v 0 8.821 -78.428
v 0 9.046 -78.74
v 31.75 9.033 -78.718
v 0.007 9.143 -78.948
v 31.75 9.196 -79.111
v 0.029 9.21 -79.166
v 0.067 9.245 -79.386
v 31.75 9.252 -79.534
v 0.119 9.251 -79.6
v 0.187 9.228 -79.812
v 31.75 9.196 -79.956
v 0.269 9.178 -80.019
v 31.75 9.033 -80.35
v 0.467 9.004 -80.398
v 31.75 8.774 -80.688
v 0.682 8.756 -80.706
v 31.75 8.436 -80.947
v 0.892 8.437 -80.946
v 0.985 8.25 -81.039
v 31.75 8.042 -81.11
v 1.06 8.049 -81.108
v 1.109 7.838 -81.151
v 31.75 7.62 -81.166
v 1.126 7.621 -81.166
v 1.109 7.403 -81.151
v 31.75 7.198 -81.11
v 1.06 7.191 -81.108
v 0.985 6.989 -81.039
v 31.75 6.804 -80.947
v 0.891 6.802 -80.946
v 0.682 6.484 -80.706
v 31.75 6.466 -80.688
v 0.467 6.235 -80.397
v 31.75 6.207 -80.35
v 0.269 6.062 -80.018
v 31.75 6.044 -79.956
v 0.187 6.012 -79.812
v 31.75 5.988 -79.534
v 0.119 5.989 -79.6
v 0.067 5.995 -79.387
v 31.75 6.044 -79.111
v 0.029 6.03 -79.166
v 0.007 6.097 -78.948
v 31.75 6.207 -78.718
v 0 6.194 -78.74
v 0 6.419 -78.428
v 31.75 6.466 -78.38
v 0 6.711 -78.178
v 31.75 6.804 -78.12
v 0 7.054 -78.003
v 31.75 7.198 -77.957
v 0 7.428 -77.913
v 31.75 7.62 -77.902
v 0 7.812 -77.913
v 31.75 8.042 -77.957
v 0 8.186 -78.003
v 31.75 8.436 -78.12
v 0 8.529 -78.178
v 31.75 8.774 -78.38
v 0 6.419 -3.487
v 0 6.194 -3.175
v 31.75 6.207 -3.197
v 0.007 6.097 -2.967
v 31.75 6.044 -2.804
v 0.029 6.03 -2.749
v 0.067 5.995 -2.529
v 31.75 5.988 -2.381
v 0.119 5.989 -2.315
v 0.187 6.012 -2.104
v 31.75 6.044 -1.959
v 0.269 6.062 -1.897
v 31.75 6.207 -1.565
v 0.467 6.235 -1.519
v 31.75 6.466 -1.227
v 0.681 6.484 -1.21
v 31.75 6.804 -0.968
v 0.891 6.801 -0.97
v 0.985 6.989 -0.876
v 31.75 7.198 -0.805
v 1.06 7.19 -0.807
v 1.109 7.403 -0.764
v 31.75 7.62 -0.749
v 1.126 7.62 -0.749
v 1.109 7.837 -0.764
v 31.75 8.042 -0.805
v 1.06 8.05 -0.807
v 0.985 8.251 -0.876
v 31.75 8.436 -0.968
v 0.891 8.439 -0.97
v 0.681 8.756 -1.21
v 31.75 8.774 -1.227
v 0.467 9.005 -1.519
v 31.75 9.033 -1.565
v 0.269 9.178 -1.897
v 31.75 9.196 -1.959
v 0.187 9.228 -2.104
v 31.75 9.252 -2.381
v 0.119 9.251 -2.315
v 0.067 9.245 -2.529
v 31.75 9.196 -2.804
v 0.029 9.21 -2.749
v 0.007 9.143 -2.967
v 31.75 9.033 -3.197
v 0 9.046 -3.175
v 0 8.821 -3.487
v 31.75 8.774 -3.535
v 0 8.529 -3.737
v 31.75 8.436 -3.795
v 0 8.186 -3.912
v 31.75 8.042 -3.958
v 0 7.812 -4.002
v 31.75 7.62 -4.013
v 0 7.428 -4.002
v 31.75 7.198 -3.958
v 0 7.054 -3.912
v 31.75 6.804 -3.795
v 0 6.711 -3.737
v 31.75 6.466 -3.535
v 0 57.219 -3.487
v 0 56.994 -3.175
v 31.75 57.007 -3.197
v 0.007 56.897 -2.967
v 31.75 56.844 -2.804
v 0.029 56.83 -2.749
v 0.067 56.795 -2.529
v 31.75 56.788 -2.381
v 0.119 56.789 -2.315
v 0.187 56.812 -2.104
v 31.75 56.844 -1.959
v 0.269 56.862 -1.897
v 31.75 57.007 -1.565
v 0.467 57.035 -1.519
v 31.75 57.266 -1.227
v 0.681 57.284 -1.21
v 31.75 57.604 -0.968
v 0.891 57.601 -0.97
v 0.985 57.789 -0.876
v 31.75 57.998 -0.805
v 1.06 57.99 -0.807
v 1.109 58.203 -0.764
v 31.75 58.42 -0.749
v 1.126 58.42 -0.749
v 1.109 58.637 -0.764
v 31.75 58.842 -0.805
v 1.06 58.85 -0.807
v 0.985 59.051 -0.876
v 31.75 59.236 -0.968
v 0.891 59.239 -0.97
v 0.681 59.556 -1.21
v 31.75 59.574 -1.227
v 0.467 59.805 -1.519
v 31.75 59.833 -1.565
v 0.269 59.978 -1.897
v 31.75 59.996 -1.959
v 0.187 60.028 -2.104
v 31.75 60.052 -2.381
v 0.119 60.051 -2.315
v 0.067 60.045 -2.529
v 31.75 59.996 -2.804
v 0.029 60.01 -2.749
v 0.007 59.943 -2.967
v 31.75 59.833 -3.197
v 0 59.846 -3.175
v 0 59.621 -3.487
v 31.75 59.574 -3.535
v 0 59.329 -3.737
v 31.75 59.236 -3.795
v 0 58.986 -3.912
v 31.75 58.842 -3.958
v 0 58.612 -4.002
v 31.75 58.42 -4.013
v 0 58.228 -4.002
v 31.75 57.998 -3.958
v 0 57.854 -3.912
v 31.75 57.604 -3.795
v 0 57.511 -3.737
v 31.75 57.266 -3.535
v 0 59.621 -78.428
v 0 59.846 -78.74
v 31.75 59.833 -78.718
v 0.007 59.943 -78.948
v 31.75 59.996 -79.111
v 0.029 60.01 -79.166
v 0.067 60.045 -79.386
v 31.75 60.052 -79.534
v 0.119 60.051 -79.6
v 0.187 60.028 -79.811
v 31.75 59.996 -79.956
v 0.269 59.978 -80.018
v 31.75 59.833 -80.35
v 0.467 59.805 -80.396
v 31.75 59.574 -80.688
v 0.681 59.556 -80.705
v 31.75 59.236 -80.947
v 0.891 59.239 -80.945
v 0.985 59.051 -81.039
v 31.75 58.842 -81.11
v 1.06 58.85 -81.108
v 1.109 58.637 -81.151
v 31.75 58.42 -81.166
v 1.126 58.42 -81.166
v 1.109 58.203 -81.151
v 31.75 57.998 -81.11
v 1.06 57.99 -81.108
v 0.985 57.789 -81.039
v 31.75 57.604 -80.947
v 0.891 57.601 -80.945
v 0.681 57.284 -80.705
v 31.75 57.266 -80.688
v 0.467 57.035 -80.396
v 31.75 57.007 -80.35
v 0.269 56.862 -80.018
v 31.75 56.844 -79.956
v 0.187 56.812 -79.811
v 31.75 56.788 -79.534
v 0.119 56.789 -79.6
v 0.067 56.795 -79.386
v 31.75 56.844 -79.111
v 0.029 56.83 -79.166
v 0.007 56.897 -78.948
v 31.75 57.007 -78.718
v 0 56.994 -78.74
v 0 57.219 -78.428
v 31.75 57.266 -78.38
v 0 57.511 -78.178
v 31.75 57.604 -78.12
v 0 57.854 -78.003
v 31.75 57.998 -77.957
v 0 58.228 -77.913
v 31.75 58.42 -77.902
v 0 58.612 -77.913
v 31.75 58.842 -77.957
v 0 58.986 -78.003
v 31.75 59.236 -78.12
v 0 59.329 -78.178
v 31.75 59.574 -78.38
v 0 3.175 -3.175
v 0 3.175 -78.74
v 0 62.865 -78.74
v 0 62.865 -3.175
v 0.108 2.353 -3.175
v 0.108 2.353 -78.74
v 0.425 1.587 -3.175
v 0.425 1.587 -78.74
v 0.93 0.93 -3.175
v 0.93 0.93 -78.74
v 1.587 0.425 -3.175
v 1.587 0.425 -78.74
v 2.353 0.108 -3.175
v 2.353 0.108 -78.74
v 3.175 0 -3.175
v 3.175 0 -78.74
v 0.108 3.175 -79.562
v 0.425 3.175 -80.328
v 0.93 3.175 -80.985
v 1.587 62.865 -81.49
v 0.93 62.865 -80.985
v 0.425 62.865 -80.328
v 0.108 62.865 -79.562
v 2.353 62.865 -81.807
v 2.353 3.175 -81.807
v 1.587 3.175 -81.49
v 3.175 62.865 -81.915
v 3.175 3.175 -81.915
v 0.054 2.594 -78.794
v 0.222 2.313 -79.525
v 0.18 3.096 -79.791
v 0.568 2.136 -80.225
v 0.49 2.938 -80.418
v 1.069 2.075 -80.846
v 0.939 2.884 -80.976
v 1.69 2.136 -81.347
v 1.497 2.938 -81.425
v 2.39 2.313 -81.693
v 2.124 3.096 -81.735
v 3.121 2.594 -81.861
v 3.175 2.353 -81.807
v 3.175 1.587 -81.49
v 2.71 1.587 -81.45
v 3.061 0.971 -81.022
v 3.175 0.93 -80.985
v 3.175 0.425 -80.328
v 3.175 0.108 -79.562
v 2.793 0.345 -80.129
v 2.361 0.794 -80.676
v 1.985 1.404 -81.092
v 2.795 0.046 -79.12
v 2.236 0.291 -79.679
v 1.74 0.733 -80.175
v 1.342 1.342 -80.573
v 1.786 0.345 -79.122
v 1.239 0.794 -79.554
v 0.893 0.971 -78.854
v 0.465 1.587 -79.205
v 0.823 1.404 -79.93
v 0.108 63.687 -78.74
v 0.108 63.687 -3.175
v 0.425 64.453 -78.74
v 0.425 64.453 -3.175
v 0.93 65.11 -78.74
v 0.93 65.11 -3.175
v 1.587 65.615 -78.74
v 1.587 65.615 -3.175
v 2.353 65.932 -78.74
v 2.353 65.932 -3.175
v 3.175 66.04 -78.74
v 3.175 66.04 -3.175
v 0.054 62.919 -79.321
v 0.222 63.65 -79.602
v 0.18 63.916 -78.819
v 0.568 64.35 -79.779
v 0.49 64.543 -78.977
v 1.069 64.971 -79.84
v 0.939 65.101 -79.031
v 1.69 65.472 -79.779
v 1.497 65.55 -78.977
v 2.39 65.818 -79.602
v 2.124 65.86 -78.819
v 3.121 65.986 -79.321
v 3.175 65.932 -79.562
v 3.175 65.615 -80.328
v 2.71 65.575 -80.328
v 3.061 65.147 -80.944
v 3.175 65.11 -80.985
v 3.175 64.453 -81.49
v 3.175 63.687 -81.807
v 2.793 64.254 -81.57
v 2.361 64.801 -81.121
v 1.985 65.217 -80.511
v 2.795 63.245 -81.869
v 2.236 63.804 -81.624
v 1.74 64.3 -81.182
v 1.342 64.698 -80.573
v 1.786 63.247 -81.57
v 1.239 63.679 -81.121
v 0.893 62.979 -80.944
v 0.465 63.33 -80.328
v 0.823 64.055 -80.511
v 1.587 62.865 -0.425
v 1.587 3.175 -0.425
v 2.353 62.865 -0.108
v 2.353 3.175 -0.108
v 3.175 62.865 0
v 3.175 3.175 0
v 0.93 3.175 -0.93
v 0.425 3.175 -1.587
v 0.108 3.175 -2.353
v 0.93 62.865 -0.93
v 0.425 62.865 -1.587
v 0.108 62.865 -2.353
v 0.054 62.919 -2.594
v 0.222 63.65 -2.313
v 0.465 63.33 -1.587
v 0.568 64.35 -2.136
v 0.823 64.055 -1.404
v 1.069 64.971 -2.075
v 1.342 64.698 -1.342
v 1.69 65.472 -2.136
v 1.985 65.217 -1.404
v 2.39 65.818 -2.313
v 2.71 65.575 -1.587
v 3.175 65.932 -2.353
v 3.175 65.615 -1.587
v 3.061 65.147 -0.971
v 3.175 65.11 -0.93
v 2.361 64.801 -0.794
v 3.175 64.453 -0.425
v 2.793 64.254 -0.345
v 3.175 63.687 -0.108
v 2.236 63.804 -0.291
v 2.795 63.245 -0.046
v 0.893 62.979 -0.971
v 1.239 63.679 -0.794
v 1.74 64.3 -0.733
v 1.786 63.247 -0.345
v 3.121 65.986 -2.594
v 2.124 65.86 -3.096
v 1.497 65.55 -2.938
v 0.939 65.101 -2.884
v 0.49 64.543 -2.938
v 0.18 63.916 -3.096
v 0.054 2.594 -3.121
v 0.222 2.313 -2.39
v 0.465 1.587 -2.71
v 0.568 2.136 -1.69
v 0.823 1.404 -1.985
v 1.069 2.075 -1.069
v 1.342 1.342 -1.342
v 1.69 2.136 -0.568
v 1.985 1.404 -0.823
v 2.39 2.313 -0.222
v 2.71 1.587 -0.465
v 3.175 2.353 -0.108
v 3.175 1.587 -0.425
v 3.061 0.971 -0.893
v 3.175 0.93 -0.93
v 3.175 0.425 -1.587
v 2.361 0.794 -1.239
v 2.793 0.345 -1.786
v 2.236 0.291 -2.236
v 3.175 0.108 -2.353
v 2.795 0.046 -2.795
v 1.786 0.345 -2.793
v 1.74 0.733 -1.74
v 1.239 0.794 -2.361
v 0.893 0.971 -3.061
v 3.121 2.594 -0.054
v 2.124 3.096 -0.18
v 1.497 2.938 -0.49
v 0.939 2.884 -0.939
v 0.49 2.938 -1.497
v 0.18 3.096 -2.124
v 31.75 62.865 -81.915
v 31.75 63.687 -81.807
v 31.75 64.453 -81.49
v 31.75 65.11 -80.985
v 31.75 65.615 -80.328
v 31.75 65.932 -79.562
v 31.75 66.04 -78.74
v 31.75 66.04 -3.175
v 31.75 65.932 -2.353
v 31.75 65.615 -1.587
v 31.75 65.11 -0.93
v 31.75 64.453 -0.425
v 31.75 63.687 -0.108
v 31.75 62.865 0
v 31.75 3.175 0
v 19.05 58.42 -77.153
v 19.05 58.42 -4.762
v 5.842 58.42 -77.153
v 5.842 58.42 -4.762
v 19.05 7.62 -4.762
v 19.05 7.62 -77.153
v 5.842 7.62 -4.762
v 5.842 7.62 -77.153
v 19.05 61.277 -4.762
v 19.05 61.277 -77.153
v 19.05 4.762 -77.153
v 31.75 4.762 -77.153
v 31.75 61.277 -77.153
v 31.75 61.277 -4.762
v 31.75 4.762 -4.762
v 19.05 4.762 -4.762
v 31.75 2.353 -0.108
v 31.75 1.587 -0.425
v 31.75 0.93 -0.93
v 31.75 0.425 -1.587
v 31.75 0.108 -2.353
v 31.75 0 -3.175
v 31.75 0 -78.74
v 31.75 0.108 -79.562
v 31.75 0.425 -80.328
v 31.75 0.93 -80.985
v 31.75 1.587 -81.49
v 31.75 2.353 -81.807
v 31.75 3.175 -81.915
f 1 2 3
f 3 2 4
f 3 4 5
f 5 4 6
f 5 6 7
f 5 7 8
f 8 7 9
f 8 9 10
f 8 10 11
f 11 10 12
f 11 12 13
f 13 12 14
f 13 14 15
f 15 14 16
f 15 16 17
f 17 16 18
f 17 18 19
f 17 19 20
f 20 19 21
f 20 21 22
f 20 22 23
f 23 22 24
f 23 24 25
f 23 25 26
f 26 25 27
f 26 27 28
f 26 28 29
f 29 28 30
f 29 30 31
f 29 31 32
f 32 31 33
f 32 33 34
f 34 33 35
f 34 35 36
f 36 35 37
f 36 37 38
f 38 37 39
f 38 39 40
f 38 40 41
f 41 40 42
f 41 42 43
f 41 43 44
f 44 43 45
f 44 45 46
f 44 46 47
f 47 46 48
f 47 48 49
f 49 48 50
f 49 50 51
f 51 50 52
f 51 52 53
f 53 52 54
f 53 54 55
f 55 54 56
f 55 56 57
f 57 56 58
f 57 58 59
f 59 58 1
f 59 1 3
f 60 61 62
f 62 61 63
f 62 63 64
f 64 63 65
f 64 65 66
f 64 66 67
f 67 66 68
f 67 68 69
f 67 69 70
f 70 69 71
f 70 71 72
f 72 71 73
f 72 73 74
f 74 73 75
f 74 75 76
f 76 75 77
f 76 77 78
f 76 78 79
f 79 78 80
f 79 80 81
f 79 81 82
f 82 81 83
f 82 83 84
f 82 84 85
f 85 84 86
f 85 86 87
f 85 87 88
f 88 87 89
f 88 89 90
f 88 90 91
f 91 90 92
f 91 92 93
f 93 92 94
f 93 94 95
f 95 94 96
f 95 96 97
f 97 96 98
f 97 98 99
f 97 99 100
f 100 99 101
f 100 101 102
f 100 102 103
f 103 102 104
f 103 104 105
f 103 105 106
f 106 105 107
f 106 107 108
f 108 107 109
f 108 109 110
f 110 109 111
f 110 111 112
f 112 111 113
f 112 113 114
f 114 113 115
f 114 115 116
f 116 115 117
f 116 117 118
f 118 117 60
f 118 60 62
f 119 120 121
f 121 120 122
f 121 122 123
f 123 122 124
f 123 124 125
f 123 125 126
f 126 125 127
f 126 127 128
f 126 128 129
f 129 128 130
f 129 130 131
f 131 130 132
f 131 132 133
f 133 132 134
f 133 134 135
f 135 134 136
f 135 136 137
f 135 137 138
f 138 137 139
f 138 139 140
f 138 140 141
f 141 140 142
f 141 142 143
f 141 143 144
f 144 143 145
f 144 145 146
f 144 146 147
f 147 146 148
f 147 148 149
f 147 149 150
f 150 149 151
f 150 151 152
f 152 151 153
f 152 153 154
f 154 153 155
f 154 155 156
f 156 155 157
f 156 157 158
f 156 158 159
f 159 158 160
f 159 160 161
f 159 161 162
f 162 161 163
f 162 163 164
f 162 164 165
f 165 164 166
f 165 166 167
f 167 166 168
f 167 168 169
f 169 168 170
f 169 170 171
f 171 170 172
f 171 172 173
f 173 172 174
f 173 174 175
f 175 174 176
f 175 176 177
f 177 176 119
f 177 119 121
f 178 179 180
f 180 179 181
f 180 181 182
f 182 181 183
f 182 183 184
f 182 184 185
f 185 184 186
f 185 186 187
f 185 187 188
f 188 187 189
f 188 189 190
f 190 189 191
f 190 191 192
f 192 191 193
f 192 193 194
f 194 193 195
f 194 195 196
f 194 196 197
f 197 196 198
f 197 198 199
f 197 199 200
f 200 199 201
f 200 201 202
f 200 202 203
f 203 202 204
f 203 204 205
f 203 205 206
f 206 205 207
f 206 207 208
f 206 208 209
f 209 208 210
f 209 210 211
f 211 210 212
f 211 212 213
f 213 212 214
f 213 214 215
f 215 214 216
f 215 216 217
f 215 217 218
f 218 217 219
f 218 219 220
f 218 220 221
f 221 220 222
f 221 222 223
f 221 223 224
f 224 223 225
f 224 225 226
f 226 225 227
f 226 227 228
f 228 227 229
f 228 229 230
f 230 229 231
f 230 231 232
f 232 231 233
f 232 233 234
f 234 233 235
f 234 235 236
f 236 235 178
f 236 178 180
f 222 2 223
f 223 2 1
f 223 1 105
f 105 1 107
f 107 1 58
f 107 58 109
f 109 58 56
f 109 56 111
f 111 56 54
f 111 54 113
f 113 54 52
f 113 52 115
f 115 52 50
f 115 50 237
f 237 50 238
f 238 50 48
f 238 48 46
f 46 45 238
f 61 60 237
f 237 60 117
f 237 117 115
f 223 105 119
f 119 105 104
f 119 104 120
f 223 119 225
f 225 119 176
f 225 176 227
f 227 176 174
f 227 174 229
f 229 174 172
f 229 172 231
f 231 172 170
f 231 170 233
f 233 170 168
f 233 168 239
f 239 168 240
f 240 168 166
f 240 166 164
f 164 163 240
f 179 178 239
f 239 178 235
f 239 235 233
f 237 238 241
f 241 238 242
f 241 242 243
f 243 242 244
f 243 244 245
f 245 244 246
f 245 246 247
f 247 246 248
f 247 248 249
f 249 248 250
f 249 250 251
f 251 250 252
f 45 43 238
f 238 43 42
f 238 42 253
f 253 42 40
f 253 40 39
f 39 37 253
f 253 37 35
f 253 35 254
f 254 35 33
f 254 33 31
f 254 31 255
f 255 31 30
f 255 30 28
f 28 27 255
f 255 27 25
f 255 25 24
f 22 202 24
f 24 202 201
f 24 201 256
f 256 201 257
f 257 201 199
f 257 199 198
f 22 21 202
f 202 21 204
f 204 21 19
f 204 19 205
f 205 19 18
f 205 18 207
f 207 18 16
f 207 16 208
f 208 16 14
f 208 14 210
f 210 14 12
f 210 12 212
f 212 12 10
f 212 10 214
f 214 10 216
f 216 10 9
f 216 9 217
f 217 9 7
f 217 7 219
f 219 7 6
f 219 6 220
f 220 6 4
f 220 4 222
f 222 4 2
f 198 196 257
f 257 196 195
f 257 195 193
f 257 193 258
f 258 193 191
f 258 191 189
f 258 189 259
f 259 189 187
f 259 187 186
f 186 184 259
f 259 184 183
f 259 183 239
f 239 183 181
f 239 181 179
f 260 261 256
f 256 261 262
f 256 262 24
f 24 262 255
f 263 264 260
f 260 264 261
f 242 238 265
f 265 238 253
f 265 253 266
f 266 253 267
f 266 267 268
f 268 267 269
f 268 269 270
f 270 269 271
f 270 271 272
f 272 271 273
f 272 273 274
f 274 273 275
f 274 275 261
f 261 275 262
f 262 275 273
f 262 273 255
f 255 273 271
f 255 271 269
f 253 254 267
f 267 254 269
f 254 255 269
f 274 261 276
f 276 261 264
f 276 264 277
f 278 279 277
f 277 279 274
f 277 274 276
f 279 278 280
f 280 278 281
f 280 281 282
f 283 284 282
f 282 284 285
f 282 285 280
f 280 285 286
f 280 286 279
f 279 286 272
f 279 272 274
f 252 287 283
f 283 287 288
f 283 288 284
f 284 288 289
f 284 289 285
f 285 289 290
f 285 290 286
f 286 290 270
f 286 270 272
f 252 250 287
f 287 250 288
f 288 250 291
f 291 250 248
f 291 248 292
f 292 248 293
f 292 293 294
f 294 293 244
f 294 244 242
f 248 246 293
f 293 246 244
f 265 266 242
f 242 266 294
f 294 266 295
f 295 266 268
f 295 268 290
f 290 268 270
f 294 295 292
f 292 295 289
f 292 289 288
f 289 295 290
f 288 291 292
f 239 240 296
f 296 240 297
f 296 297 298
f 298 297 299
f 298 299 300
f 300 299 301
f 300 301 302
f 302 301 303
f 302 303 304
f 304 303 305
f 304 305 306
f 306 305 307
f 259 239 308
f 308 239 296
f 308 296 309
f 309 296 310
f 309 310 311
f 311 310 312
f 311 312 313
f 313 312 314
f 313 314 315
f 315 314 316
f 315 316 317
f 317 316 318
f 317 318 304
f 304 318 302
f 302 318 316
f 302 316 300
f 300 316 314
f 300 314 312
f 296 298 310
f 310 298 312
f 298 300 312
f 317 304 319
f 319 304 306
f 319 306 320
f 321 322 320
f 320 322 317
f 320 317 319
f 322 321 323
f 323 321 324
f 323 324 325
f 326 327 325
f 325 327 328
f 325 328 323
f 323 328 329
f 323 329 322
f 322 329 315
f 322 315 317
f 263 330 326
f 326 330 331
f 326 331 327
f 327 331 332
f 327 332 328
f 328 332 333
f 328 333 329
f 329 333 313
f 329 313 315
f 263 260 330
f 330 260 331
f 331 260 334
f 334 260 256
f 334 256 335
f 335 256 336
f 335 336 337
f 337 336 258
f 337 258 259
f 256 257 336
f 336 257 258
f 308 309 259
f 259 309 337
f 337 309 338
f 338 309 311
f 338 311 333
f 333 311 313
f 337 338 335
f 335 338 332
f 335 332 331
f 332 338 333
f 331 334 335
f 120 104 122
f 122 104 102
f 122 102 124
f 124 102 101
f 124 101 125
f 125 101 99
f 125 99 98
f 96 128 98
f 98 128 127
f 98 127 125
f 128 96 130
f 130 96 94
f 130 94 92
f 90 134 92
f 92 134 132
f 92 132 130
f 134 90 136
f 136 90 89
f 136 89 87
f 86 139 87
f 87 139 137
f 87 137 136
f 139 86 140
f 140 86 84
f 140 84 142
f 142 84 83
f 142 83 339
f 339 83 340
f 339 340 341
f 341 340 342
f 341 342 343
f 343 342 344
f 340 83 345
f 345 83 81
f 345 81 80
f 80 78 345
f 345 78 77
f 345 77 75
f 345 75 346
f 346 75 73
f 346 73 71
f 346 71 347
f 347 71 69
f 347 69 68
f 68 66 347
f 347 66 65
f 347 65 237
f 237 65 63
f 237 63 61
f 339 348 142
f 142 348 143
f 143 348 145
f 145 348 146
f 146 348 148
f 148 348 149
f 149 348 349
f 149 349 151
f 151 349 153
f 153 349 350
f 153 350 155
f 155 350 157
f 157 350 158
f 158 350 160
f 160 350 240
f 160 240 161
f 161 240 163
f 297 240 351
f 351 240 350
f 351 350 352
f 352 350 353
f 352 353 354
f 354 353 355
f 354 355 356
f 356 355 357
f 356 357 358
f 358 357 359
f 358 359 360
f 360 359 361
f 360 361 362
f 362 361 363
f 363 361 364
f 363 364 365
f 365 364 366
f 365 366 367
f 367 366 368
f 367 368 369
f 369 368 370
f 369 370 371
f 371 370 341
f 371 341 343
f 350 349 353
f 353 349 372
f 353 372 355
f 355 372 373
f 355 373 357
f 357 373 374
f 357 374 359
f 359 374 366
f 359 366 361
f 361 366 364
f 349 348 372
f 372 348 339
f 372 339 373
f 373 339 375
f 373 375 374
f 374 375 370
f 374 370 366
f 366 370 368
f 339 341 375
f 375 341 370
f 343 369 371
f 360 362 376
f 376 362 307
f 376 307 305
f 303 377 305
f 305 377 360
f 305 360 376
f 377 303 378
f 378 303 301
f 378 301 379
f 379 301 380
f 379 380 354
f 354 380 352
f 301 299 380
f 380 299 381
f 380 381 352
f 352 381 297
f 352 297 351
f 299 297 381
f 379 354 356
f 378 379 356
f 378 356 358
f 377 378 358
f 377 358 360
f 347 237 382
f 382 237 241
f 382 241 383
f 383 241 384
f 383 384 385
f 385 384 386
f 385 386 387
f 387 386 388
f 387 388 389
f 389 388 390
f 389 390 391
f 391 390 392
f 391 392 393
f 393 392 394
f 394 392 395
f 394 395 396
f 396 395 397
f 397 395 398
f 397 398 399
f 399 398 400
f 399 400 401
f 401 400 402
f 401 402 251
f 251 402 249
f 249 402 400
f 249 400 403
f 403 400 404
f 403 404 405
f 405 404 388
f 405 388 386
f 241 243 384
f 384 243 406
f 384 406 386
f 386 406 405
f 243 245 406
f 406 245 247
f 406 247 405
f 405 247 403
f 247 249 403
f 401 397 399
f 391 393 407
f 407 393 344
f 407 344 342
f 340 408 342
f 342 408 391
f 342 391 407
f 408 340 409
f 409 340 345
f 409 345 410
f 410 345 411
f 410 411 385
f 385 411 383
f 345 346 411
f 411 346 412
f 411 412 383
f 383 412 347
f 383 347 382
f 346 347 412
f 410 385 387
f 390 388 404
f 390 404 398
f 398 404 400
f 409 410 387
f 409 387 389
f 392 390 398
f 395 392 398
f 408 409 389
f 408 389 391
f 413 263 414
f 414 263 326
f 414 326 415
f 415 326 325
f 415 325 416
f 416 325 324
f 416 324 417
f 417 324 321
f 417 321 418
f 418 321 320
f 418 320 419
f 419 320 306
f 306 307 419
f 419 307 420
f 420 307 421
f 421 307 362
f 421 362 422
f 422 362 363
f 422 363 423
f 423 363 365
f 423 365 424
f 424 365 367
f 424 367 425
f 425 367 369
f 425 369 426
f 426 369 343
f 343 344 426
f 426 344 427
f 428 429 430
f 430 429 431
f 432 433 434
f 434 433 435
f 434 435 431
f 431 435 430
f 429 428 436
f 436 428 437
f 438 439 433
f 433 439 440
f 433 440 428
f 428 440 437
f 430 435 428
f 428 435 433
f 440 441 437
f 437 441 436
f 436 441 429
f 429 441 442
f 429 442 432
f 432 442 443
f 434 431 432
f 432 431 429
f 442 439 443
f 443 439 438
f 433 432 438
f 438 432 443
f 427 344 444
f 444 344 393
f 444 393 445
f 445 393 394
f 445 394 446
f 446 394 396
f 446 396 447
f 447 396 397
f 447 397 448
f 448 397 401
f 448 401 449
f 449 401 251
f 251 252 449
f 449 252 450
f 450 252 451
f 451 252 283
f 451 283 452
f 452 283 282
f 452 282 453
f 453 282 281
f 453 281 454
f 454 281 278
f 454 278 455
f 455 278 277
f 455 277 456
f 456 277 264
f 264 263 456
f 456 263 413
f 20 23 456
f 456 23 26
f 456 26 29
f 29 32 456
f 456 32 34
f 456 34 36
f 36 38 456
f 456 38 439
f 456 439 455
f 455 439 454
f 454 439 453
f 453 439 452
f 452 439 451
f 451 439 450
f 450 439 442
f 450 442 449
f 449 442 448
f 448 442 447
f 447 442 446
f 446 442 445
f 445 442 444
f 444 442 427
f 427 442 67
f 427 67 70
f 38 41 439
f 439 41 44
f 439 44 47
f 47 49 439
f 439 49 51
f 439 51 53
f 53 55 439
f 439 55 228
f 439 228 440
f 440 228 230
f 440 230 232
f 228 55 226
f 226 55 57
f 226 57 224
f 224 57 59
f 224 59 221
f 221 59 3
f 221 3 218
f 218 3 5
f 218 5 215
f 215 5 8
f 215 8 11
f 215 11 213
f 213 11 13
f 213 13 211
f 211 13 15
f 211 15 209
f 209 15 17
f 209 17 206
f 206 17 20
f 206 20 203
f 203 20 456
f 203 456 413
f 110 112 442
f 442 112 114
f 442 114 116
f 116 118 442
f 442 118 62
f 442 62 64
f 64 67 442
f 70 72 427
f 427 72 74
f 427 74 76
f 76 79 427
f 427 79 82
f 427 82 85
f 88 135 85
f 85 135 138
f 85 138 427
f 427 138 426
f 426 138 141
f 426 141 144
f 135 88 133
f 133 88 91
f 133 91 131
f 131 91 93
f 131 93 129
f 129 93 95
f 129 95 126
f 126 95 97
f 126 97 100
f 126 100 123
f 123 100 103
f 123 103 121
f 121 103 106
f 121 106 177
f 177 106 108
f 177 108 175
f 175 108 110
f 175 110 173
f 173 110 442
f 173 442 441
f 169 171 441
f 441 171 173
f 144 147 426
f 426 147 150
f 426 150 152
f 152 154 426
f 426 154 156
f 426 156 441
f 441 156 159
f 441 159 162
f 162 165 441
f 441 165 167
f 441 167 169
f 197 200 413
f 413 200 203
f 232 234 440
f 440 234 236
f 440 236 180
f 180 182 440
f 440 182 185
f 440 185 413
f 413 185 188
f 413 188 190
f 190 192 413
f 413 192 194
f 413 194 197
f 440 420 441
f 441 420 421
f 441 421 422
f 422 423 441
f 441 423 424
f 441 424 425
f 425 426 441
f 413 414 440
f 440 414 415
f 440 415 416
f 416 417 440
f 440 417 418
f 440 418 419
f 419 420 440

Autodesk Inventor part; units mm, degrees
ref_plane "YZ Plane" through (0, 0, 0) normal (1, 0, 0) x (0, 1, 0)
ref_plane "XZ Plane" through (0, 0, 0) normal (0, 1, 0) x (-1, 0, 0)
ref_plane "XY Plane" through (0, 0, 0) normal (0, 0, 1) x (1, 0, 0)
sketch "Sketch1" plane through (0, 0, 0) normal (1, 0, 0) x (0, 1, 0)
  line L0 (0, 0) -> (66.04, 0)
  line L1 (66.04, 0) -> (66.04, -81.915)
  line L2 (66.04, -81.915) -> (0, -81.915)
  line L3 (0, -81.915) -> (0, 0)
  dimension "d0" = 66.04
  dimension "d1" = 81.915
extrude "Extrusion1" add sketch "Sketch1" along normal blind 31.75
fillet "Fillet1" radius 3.175 4 edges at (15.875, 0, -81.915) (15.875, 66.04, -81.915) (15.875, 0, 0) (15.875, 66.04, 0)
sketch "Sketch2" plane through (31.75, 0, 0) normal (1, 0, 0) x (0, 0, -1)
  line L0 (77.1525, 4.7625) -> (4.7625, 4.7625)
  line L1 (4.7625, 4.7625) -> (4.7625, 61.2775)
  line L2 (4.7625, 61.2775) -> (77.1525, 61.2775)
  line L3 (77.1525, 61.2775) -> (77.1525, 4.7625)
  line L4 (0, 0) -> (20.3539, 0) construction
  line L5 (3.175, 0) -> (78.74, 0) projected
  line L6 (0, 0) -> (0, 12.4806) construction
  line L7 (0, 62.865) -> (0, 3.175) projected
  dimension "d6" = 56.515
  dimension "d7" = 72.39
  dimension "d10" = 4.7625
  dimension "d19" = 4.7625
extrude "Extrusion2" cut sketch "Sketch2" against normal blind 12.7
sketch "Sketch3" plane through (19.05, 0, 0) normal (1, 0, 0) x (0, 0, -1)
  line L0 (77.1525, 61.2775) -> (77.1525, 4.7625) projected
  line L1 (77.1525, 33.02) -> (4.7625, 33.02) construction
  line L2 (4.7625, 4.7625) -> (4.7625, 61.2775) projected
  line L3 (4.7625, 7.62) -> (77.1525, 7.62)
  line L4 (77.1525, 7.62) -> (77.1525, 58.42)
  line L5 (77.1525, 58.42) -> (4.7625, 58.42)
  line L6 (4.7625, 58.42) -> (4.7625, 7.62)
  line L7 (4.7625, 7.62) -> (77.1525, 58.42) construction
  line L8 (77.1525, 7.62) -> (4.7625, 58.42) construction
  line L9 (77.1525, 4.7625) -> (4.7625, 4.7625) projected
  line L10 (77.1525, 4.7625) -> (77.1525, 24.7395)
  point P0 (40.9575, 33.02)
  dimension "d11" = 50.8
  dimension "d12" = 72.39
extrude "Extrusion3" cut sketch "Sketch3" against normal blind 13.208 contours L0 L3 L2 L5
fillet "Fillet3" radius 3.175 8 edges at (0, 0.9299, -80.9851) (0, 0, -40.9575) (0, 0.9299, -0.9299) (0, 33.02, 0) (0, 65.1101, -0.9299) (0, 66.04, -40.9575) (0, 65.1101, -80.9851) (0, 33.02, -81.915)
sketch "Sketch4" plane through (31.75, 0, 0) normal (1, 0, 0) x (0, 0, -1)
  line L0 (2.3813, -0.2223) -> (2.3813, 65.5235) construction
  line L1 (0, 3.175) -> (0, 62.865) projected
  circle A0 centre (2.3813, 7.62) radius 1.632
  line L2 (0, 62.865) -> (0, 3.175) projected
  line L3 (0, 33.02) -> (4.7625, 33.02) construction
  line L4 (4.7625, 7.62) -> (4.7625, 58.42) projected
  circle A1 centre (2.3812, 58.42) radius 1.632
  line L5 (4.7625, 58.42) -> (4.7625, 7.62)
  line L6 (77.1525, 4.7625) -> (4.7625, 4.7625) projected
  line L7 (40.9575, 4.7625) -> (40.9575, -0.2223) construction
  circle A2 centre (79.5338, 7.62) radius 1.632
  circle A3 centre (79.5338, 58.42) radius 1.632
  point P0 (0, 0)
  dimension "d17" = 2.3813
  dimension "d18" = 3.2639
  dimension "d21" = 25.4
extrude "Extrusion4" cut sketch "Sketch4" against normal blind 31.75
properties part number "bottom"
